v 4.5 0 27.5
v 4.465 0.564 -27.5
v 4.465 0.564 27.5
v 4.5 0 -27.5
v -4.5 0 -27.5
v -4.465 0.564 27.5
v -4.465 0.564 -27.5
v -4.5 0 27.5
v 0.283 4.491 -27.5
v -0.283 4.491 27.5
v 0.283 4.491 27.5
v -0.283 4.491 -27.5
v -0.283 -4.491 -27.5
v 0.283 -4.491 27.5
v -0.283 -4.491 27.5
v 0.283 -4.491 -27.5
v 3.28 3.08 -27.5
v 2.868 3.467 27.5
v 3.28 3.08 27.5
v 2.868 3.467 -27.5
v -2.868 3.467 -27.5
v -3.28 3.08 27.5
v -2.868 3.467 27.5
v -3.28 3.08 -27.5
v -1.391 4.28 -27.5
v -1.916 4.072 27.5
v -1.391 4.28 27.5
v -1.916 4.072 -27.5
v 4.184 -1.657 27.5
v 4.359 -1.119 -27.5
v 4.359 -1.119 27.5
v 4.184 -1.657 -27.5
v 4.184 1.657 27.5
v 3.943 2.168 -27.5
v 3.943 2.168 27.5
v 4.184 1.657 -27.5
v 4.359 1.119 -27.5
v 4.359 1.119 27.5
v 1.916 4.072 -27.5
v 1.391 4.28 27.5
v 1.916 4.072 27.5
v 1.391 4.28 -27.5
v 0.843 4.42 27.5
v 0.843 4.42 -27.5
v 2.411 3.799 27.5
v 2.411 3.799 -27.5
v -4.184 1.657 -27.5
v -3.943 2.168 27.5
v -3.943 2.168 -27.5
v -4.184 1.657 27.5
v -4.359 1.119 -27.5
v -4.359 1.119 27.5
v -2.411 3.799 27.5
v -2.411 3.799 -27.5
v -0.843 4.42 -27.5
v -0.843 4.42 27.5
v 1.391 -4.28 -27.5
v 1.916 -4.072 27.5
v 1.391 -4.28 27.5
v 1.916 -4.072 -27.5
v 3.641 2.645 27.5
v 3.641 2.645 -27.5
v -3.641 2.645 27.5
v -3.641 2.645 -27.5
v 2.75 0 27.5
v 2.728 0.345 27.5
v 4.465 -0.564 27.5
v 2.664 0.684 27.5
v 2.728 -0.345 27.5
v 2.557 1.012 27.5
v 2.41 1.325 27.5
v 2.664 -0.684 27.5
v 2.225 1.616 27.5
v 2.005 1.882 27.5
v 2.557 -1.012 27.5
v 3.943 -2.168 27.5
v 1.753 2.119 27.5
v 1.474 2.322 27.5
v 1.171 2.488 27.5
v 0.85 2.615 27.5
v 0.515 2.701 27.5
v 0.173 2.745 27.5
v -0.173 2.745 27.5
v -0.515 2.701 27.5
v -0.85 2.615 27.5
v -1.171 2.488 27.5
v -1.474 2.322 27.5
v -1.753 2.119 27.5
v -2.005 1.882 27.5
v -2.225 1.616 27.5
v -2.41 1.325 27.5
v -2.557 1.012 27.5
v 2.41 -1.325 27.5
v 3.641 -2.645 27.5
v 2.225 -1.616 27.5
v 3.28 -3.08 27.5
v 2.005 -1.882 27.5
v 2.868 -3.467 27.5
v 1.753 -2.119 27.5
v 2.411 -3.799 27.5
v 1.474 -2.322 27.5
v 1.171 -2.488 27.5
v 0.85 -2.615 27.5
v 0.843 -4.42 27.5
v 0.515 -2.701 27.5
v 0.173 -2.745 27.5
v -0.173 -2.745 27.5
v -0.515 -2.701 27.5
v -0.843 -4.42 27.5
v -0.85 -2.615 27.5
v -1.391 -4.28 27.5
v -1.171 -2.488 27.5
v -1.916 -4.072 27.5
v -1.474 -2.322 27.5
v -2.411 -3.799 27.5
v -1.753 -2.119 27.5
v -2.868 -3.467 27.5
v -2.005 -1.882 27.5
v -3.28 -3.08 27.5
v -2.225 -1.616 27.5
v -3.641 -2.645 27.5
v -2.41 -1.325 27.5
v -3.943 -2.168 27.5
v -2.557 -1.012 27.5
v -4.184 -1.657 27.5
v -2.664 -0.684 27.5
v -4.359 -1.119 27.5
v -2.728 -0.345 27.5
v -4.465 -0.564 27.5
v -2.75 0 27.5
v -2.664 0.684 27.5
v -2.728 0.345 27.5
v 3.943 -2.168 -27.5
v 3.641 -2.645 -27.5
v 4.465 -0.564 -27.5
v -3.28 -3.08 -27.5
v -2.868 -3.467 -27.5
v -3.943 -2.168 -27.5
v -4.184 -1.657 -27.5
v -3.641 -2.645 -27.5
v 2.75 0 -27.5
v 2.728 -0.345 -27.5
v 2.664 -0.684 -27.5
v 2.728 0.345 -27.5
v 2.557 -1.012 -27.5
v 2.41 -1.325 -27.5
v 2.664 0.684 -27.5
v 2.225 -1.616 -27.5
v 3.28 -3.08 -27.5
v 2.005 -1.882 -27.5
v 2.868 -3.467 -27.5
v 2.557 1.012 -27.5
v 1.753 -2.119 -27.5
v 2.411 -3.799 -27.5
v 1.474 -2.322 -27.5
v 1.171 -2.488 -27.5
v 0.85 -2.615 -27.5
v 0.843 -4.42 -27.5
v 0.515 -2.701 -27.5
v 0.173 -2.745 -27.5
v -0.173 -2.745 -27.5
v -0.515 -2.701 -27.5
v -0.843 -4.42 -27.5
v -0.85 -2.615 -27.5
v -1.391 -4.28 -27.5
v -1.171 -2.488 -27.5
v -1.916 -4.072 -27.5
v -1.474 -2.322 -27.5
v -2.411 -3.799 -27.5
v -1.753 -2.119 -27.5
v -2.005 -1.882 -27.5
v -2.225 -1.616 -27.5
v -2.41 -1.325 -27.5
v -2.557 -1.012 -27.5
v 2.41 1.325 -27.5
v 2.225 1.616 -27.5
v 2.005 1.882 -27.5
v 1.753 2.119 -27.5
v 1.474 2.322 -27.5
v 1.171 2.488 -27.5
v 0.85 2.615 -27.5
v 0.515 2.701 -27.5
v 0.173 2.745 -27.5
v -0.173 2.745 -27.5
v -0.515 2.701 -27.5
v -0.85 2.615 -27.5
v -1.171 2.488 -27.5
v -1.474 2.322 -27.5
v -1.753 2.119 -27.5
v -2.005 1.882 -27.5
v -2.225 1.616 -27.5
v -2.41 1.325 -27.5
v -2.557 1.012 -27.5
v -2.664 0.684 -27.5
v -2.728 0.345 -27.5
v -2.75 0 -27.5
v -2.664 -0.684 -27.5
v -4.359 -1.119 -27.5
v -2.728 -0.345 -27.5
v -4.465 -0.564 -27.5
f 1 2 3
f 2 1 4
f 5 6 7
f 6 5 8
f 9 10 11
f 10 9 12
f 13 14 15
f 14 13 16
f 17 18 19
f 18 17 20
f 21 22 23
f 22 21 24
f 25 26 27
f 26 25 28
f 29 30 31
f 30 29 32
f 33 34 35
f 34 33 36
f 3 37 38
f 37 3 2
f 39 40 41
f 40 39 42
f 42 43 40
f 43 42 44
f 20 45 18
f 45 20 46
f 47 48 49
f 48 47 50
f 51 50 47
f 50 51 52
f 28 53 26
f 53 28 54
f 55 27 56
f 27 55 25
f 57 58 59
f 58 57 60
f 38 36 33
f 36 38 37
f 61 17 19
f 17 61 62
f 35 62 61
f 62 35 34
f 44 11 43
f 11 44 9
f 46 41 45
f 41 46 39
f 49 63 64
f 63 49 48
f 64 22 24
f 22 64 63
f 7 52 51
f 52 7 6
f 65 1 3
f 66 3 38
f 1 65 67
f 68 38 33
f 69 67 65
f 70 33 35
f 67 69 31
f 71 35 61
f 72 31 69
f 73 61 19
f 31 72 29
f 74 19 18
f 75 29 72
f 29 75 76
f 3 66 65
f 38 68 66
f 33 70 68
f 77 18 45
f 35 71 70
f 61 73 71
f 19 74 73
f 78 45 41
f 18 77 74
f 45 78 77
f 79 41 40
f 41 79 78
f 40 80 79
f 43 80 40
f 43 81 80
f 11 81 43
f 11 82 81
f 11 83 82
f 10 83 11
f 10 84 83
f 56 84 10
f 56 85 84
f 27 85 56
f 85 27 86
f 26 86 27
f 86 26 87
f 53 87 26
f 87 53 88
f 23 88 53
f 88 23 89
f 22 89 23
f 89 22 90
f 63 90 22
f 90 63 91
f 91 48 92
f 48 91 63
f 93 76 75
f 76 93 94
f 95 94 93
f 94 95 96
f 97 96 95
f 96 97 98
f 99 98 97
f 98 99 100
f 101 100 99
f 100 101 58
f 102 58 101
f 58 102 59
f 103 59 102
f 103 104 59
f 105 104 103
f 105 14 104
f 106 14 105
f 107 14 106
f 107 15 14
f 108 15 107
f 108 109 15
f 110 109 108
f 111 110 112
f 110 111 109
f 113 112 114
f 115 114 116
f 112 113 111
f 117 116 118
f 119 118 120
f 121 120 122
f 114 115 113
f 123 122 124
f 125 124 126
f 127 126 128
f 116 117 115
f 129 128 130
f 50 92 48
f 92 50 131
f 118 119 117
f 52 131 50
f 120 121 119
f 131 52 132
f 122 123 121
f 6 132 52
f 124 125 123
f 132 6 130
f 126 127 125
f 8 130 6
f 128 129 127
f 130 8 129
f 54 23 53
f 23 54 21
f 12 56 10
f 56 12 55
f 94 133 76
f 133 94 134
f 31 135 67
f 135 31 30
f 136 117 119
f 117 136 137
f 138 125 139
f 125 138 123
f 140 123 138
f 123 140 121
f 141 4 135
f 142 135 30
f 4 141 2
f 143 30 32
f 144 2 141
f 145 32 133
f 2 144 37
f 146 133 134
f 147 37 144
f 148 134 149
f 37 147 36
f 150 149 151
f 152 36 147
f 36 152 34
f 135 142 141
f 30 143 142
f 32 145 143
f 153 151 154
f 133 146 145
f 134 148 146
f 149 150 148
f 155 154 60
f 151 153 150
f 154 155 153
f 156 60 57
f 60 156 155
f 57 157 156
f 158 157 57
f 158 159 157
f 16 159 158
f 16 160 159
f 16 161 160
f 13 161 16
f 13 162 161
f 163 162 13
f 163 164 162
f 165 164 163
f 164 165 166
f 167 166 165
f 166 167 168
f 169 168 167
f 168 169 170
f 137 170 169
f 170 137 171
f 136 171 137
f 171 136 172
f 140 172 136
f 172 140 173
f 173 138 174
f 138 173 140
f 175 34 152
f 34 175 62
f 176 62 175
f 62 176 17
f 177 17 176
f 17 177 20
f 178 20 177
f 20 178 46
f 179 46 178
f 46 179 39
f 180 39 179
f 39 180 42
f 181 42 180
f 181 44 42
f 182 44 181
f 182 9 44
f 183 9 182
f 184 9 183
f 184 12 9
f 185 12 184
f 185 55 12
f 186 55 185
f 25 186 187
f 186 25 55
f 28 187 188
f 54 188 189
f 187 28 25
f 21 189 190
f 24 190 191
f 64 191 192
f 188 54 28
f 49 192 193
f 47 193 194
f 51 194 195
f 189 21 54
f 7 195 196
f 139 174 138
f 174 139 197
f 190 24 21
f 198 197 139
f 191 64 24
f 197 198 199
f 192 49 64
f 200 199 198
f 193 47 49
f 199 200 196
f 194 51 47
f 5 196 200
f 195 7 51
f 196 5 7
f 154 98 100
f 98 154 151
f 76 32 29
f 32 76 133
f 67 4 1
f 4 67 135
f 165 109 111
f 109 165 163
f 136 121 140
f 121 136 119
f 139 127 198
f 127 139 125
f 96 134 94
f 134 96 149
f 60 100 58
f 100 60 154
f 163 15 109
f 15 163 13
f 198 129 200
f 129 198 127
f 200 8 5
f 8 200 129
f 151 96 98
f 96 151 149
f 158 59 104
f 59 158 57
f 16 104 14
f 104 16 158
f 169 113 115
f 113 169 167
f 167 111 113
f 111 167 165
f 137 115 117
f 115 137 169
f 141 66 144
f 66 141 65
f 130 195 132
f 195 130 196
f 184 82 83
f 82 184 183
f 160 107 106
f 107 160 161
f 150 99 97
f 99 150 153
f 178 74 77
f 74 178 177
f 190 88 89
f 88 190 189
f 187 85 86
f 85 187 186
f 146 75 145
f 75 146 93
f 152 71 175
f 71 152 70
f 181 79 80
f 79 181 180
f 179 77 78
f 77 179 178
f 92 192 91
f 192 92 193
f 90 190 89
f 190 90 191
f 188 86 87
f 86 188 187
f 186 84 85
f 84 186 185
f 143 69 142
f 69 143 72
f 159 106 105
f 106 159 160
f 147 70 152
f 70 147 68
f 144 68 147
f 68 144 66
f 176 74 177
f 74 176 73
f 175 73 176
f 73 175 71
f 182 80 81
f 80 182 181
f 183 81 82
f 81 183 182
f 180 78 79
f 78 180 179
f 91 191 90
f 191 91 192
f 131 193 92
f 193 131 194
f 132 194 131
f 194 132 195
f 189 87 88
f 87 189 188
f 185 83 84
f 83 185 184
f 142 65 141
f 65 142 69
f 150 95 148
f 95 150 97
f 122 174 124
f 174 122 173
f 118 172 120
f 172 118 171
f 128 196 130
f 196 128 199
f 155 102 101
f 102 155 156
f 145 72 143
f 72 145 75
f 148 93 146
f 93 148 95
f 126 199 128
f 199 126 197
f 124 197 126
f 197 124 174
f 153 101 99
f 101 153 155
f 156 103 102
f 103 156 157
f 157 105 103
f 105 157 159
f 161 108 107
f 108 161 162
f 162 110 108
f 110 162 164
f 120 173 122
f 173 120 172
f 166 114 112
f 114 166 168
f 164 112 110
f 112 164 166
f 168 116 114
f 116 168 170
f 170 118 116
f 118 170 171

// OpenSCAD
$fn = 50;


difference() {
	union() {
		translate(v = [0, 0, -27.5000000000]) {
			cylinder(h = 55, r = 4.5000000000);
		}
	}
	union() {
		translate(v = [0, 0, -100.0000000000]) {
			cylinder(h = 200, r = 2.7500000000);
		}
	}
}
